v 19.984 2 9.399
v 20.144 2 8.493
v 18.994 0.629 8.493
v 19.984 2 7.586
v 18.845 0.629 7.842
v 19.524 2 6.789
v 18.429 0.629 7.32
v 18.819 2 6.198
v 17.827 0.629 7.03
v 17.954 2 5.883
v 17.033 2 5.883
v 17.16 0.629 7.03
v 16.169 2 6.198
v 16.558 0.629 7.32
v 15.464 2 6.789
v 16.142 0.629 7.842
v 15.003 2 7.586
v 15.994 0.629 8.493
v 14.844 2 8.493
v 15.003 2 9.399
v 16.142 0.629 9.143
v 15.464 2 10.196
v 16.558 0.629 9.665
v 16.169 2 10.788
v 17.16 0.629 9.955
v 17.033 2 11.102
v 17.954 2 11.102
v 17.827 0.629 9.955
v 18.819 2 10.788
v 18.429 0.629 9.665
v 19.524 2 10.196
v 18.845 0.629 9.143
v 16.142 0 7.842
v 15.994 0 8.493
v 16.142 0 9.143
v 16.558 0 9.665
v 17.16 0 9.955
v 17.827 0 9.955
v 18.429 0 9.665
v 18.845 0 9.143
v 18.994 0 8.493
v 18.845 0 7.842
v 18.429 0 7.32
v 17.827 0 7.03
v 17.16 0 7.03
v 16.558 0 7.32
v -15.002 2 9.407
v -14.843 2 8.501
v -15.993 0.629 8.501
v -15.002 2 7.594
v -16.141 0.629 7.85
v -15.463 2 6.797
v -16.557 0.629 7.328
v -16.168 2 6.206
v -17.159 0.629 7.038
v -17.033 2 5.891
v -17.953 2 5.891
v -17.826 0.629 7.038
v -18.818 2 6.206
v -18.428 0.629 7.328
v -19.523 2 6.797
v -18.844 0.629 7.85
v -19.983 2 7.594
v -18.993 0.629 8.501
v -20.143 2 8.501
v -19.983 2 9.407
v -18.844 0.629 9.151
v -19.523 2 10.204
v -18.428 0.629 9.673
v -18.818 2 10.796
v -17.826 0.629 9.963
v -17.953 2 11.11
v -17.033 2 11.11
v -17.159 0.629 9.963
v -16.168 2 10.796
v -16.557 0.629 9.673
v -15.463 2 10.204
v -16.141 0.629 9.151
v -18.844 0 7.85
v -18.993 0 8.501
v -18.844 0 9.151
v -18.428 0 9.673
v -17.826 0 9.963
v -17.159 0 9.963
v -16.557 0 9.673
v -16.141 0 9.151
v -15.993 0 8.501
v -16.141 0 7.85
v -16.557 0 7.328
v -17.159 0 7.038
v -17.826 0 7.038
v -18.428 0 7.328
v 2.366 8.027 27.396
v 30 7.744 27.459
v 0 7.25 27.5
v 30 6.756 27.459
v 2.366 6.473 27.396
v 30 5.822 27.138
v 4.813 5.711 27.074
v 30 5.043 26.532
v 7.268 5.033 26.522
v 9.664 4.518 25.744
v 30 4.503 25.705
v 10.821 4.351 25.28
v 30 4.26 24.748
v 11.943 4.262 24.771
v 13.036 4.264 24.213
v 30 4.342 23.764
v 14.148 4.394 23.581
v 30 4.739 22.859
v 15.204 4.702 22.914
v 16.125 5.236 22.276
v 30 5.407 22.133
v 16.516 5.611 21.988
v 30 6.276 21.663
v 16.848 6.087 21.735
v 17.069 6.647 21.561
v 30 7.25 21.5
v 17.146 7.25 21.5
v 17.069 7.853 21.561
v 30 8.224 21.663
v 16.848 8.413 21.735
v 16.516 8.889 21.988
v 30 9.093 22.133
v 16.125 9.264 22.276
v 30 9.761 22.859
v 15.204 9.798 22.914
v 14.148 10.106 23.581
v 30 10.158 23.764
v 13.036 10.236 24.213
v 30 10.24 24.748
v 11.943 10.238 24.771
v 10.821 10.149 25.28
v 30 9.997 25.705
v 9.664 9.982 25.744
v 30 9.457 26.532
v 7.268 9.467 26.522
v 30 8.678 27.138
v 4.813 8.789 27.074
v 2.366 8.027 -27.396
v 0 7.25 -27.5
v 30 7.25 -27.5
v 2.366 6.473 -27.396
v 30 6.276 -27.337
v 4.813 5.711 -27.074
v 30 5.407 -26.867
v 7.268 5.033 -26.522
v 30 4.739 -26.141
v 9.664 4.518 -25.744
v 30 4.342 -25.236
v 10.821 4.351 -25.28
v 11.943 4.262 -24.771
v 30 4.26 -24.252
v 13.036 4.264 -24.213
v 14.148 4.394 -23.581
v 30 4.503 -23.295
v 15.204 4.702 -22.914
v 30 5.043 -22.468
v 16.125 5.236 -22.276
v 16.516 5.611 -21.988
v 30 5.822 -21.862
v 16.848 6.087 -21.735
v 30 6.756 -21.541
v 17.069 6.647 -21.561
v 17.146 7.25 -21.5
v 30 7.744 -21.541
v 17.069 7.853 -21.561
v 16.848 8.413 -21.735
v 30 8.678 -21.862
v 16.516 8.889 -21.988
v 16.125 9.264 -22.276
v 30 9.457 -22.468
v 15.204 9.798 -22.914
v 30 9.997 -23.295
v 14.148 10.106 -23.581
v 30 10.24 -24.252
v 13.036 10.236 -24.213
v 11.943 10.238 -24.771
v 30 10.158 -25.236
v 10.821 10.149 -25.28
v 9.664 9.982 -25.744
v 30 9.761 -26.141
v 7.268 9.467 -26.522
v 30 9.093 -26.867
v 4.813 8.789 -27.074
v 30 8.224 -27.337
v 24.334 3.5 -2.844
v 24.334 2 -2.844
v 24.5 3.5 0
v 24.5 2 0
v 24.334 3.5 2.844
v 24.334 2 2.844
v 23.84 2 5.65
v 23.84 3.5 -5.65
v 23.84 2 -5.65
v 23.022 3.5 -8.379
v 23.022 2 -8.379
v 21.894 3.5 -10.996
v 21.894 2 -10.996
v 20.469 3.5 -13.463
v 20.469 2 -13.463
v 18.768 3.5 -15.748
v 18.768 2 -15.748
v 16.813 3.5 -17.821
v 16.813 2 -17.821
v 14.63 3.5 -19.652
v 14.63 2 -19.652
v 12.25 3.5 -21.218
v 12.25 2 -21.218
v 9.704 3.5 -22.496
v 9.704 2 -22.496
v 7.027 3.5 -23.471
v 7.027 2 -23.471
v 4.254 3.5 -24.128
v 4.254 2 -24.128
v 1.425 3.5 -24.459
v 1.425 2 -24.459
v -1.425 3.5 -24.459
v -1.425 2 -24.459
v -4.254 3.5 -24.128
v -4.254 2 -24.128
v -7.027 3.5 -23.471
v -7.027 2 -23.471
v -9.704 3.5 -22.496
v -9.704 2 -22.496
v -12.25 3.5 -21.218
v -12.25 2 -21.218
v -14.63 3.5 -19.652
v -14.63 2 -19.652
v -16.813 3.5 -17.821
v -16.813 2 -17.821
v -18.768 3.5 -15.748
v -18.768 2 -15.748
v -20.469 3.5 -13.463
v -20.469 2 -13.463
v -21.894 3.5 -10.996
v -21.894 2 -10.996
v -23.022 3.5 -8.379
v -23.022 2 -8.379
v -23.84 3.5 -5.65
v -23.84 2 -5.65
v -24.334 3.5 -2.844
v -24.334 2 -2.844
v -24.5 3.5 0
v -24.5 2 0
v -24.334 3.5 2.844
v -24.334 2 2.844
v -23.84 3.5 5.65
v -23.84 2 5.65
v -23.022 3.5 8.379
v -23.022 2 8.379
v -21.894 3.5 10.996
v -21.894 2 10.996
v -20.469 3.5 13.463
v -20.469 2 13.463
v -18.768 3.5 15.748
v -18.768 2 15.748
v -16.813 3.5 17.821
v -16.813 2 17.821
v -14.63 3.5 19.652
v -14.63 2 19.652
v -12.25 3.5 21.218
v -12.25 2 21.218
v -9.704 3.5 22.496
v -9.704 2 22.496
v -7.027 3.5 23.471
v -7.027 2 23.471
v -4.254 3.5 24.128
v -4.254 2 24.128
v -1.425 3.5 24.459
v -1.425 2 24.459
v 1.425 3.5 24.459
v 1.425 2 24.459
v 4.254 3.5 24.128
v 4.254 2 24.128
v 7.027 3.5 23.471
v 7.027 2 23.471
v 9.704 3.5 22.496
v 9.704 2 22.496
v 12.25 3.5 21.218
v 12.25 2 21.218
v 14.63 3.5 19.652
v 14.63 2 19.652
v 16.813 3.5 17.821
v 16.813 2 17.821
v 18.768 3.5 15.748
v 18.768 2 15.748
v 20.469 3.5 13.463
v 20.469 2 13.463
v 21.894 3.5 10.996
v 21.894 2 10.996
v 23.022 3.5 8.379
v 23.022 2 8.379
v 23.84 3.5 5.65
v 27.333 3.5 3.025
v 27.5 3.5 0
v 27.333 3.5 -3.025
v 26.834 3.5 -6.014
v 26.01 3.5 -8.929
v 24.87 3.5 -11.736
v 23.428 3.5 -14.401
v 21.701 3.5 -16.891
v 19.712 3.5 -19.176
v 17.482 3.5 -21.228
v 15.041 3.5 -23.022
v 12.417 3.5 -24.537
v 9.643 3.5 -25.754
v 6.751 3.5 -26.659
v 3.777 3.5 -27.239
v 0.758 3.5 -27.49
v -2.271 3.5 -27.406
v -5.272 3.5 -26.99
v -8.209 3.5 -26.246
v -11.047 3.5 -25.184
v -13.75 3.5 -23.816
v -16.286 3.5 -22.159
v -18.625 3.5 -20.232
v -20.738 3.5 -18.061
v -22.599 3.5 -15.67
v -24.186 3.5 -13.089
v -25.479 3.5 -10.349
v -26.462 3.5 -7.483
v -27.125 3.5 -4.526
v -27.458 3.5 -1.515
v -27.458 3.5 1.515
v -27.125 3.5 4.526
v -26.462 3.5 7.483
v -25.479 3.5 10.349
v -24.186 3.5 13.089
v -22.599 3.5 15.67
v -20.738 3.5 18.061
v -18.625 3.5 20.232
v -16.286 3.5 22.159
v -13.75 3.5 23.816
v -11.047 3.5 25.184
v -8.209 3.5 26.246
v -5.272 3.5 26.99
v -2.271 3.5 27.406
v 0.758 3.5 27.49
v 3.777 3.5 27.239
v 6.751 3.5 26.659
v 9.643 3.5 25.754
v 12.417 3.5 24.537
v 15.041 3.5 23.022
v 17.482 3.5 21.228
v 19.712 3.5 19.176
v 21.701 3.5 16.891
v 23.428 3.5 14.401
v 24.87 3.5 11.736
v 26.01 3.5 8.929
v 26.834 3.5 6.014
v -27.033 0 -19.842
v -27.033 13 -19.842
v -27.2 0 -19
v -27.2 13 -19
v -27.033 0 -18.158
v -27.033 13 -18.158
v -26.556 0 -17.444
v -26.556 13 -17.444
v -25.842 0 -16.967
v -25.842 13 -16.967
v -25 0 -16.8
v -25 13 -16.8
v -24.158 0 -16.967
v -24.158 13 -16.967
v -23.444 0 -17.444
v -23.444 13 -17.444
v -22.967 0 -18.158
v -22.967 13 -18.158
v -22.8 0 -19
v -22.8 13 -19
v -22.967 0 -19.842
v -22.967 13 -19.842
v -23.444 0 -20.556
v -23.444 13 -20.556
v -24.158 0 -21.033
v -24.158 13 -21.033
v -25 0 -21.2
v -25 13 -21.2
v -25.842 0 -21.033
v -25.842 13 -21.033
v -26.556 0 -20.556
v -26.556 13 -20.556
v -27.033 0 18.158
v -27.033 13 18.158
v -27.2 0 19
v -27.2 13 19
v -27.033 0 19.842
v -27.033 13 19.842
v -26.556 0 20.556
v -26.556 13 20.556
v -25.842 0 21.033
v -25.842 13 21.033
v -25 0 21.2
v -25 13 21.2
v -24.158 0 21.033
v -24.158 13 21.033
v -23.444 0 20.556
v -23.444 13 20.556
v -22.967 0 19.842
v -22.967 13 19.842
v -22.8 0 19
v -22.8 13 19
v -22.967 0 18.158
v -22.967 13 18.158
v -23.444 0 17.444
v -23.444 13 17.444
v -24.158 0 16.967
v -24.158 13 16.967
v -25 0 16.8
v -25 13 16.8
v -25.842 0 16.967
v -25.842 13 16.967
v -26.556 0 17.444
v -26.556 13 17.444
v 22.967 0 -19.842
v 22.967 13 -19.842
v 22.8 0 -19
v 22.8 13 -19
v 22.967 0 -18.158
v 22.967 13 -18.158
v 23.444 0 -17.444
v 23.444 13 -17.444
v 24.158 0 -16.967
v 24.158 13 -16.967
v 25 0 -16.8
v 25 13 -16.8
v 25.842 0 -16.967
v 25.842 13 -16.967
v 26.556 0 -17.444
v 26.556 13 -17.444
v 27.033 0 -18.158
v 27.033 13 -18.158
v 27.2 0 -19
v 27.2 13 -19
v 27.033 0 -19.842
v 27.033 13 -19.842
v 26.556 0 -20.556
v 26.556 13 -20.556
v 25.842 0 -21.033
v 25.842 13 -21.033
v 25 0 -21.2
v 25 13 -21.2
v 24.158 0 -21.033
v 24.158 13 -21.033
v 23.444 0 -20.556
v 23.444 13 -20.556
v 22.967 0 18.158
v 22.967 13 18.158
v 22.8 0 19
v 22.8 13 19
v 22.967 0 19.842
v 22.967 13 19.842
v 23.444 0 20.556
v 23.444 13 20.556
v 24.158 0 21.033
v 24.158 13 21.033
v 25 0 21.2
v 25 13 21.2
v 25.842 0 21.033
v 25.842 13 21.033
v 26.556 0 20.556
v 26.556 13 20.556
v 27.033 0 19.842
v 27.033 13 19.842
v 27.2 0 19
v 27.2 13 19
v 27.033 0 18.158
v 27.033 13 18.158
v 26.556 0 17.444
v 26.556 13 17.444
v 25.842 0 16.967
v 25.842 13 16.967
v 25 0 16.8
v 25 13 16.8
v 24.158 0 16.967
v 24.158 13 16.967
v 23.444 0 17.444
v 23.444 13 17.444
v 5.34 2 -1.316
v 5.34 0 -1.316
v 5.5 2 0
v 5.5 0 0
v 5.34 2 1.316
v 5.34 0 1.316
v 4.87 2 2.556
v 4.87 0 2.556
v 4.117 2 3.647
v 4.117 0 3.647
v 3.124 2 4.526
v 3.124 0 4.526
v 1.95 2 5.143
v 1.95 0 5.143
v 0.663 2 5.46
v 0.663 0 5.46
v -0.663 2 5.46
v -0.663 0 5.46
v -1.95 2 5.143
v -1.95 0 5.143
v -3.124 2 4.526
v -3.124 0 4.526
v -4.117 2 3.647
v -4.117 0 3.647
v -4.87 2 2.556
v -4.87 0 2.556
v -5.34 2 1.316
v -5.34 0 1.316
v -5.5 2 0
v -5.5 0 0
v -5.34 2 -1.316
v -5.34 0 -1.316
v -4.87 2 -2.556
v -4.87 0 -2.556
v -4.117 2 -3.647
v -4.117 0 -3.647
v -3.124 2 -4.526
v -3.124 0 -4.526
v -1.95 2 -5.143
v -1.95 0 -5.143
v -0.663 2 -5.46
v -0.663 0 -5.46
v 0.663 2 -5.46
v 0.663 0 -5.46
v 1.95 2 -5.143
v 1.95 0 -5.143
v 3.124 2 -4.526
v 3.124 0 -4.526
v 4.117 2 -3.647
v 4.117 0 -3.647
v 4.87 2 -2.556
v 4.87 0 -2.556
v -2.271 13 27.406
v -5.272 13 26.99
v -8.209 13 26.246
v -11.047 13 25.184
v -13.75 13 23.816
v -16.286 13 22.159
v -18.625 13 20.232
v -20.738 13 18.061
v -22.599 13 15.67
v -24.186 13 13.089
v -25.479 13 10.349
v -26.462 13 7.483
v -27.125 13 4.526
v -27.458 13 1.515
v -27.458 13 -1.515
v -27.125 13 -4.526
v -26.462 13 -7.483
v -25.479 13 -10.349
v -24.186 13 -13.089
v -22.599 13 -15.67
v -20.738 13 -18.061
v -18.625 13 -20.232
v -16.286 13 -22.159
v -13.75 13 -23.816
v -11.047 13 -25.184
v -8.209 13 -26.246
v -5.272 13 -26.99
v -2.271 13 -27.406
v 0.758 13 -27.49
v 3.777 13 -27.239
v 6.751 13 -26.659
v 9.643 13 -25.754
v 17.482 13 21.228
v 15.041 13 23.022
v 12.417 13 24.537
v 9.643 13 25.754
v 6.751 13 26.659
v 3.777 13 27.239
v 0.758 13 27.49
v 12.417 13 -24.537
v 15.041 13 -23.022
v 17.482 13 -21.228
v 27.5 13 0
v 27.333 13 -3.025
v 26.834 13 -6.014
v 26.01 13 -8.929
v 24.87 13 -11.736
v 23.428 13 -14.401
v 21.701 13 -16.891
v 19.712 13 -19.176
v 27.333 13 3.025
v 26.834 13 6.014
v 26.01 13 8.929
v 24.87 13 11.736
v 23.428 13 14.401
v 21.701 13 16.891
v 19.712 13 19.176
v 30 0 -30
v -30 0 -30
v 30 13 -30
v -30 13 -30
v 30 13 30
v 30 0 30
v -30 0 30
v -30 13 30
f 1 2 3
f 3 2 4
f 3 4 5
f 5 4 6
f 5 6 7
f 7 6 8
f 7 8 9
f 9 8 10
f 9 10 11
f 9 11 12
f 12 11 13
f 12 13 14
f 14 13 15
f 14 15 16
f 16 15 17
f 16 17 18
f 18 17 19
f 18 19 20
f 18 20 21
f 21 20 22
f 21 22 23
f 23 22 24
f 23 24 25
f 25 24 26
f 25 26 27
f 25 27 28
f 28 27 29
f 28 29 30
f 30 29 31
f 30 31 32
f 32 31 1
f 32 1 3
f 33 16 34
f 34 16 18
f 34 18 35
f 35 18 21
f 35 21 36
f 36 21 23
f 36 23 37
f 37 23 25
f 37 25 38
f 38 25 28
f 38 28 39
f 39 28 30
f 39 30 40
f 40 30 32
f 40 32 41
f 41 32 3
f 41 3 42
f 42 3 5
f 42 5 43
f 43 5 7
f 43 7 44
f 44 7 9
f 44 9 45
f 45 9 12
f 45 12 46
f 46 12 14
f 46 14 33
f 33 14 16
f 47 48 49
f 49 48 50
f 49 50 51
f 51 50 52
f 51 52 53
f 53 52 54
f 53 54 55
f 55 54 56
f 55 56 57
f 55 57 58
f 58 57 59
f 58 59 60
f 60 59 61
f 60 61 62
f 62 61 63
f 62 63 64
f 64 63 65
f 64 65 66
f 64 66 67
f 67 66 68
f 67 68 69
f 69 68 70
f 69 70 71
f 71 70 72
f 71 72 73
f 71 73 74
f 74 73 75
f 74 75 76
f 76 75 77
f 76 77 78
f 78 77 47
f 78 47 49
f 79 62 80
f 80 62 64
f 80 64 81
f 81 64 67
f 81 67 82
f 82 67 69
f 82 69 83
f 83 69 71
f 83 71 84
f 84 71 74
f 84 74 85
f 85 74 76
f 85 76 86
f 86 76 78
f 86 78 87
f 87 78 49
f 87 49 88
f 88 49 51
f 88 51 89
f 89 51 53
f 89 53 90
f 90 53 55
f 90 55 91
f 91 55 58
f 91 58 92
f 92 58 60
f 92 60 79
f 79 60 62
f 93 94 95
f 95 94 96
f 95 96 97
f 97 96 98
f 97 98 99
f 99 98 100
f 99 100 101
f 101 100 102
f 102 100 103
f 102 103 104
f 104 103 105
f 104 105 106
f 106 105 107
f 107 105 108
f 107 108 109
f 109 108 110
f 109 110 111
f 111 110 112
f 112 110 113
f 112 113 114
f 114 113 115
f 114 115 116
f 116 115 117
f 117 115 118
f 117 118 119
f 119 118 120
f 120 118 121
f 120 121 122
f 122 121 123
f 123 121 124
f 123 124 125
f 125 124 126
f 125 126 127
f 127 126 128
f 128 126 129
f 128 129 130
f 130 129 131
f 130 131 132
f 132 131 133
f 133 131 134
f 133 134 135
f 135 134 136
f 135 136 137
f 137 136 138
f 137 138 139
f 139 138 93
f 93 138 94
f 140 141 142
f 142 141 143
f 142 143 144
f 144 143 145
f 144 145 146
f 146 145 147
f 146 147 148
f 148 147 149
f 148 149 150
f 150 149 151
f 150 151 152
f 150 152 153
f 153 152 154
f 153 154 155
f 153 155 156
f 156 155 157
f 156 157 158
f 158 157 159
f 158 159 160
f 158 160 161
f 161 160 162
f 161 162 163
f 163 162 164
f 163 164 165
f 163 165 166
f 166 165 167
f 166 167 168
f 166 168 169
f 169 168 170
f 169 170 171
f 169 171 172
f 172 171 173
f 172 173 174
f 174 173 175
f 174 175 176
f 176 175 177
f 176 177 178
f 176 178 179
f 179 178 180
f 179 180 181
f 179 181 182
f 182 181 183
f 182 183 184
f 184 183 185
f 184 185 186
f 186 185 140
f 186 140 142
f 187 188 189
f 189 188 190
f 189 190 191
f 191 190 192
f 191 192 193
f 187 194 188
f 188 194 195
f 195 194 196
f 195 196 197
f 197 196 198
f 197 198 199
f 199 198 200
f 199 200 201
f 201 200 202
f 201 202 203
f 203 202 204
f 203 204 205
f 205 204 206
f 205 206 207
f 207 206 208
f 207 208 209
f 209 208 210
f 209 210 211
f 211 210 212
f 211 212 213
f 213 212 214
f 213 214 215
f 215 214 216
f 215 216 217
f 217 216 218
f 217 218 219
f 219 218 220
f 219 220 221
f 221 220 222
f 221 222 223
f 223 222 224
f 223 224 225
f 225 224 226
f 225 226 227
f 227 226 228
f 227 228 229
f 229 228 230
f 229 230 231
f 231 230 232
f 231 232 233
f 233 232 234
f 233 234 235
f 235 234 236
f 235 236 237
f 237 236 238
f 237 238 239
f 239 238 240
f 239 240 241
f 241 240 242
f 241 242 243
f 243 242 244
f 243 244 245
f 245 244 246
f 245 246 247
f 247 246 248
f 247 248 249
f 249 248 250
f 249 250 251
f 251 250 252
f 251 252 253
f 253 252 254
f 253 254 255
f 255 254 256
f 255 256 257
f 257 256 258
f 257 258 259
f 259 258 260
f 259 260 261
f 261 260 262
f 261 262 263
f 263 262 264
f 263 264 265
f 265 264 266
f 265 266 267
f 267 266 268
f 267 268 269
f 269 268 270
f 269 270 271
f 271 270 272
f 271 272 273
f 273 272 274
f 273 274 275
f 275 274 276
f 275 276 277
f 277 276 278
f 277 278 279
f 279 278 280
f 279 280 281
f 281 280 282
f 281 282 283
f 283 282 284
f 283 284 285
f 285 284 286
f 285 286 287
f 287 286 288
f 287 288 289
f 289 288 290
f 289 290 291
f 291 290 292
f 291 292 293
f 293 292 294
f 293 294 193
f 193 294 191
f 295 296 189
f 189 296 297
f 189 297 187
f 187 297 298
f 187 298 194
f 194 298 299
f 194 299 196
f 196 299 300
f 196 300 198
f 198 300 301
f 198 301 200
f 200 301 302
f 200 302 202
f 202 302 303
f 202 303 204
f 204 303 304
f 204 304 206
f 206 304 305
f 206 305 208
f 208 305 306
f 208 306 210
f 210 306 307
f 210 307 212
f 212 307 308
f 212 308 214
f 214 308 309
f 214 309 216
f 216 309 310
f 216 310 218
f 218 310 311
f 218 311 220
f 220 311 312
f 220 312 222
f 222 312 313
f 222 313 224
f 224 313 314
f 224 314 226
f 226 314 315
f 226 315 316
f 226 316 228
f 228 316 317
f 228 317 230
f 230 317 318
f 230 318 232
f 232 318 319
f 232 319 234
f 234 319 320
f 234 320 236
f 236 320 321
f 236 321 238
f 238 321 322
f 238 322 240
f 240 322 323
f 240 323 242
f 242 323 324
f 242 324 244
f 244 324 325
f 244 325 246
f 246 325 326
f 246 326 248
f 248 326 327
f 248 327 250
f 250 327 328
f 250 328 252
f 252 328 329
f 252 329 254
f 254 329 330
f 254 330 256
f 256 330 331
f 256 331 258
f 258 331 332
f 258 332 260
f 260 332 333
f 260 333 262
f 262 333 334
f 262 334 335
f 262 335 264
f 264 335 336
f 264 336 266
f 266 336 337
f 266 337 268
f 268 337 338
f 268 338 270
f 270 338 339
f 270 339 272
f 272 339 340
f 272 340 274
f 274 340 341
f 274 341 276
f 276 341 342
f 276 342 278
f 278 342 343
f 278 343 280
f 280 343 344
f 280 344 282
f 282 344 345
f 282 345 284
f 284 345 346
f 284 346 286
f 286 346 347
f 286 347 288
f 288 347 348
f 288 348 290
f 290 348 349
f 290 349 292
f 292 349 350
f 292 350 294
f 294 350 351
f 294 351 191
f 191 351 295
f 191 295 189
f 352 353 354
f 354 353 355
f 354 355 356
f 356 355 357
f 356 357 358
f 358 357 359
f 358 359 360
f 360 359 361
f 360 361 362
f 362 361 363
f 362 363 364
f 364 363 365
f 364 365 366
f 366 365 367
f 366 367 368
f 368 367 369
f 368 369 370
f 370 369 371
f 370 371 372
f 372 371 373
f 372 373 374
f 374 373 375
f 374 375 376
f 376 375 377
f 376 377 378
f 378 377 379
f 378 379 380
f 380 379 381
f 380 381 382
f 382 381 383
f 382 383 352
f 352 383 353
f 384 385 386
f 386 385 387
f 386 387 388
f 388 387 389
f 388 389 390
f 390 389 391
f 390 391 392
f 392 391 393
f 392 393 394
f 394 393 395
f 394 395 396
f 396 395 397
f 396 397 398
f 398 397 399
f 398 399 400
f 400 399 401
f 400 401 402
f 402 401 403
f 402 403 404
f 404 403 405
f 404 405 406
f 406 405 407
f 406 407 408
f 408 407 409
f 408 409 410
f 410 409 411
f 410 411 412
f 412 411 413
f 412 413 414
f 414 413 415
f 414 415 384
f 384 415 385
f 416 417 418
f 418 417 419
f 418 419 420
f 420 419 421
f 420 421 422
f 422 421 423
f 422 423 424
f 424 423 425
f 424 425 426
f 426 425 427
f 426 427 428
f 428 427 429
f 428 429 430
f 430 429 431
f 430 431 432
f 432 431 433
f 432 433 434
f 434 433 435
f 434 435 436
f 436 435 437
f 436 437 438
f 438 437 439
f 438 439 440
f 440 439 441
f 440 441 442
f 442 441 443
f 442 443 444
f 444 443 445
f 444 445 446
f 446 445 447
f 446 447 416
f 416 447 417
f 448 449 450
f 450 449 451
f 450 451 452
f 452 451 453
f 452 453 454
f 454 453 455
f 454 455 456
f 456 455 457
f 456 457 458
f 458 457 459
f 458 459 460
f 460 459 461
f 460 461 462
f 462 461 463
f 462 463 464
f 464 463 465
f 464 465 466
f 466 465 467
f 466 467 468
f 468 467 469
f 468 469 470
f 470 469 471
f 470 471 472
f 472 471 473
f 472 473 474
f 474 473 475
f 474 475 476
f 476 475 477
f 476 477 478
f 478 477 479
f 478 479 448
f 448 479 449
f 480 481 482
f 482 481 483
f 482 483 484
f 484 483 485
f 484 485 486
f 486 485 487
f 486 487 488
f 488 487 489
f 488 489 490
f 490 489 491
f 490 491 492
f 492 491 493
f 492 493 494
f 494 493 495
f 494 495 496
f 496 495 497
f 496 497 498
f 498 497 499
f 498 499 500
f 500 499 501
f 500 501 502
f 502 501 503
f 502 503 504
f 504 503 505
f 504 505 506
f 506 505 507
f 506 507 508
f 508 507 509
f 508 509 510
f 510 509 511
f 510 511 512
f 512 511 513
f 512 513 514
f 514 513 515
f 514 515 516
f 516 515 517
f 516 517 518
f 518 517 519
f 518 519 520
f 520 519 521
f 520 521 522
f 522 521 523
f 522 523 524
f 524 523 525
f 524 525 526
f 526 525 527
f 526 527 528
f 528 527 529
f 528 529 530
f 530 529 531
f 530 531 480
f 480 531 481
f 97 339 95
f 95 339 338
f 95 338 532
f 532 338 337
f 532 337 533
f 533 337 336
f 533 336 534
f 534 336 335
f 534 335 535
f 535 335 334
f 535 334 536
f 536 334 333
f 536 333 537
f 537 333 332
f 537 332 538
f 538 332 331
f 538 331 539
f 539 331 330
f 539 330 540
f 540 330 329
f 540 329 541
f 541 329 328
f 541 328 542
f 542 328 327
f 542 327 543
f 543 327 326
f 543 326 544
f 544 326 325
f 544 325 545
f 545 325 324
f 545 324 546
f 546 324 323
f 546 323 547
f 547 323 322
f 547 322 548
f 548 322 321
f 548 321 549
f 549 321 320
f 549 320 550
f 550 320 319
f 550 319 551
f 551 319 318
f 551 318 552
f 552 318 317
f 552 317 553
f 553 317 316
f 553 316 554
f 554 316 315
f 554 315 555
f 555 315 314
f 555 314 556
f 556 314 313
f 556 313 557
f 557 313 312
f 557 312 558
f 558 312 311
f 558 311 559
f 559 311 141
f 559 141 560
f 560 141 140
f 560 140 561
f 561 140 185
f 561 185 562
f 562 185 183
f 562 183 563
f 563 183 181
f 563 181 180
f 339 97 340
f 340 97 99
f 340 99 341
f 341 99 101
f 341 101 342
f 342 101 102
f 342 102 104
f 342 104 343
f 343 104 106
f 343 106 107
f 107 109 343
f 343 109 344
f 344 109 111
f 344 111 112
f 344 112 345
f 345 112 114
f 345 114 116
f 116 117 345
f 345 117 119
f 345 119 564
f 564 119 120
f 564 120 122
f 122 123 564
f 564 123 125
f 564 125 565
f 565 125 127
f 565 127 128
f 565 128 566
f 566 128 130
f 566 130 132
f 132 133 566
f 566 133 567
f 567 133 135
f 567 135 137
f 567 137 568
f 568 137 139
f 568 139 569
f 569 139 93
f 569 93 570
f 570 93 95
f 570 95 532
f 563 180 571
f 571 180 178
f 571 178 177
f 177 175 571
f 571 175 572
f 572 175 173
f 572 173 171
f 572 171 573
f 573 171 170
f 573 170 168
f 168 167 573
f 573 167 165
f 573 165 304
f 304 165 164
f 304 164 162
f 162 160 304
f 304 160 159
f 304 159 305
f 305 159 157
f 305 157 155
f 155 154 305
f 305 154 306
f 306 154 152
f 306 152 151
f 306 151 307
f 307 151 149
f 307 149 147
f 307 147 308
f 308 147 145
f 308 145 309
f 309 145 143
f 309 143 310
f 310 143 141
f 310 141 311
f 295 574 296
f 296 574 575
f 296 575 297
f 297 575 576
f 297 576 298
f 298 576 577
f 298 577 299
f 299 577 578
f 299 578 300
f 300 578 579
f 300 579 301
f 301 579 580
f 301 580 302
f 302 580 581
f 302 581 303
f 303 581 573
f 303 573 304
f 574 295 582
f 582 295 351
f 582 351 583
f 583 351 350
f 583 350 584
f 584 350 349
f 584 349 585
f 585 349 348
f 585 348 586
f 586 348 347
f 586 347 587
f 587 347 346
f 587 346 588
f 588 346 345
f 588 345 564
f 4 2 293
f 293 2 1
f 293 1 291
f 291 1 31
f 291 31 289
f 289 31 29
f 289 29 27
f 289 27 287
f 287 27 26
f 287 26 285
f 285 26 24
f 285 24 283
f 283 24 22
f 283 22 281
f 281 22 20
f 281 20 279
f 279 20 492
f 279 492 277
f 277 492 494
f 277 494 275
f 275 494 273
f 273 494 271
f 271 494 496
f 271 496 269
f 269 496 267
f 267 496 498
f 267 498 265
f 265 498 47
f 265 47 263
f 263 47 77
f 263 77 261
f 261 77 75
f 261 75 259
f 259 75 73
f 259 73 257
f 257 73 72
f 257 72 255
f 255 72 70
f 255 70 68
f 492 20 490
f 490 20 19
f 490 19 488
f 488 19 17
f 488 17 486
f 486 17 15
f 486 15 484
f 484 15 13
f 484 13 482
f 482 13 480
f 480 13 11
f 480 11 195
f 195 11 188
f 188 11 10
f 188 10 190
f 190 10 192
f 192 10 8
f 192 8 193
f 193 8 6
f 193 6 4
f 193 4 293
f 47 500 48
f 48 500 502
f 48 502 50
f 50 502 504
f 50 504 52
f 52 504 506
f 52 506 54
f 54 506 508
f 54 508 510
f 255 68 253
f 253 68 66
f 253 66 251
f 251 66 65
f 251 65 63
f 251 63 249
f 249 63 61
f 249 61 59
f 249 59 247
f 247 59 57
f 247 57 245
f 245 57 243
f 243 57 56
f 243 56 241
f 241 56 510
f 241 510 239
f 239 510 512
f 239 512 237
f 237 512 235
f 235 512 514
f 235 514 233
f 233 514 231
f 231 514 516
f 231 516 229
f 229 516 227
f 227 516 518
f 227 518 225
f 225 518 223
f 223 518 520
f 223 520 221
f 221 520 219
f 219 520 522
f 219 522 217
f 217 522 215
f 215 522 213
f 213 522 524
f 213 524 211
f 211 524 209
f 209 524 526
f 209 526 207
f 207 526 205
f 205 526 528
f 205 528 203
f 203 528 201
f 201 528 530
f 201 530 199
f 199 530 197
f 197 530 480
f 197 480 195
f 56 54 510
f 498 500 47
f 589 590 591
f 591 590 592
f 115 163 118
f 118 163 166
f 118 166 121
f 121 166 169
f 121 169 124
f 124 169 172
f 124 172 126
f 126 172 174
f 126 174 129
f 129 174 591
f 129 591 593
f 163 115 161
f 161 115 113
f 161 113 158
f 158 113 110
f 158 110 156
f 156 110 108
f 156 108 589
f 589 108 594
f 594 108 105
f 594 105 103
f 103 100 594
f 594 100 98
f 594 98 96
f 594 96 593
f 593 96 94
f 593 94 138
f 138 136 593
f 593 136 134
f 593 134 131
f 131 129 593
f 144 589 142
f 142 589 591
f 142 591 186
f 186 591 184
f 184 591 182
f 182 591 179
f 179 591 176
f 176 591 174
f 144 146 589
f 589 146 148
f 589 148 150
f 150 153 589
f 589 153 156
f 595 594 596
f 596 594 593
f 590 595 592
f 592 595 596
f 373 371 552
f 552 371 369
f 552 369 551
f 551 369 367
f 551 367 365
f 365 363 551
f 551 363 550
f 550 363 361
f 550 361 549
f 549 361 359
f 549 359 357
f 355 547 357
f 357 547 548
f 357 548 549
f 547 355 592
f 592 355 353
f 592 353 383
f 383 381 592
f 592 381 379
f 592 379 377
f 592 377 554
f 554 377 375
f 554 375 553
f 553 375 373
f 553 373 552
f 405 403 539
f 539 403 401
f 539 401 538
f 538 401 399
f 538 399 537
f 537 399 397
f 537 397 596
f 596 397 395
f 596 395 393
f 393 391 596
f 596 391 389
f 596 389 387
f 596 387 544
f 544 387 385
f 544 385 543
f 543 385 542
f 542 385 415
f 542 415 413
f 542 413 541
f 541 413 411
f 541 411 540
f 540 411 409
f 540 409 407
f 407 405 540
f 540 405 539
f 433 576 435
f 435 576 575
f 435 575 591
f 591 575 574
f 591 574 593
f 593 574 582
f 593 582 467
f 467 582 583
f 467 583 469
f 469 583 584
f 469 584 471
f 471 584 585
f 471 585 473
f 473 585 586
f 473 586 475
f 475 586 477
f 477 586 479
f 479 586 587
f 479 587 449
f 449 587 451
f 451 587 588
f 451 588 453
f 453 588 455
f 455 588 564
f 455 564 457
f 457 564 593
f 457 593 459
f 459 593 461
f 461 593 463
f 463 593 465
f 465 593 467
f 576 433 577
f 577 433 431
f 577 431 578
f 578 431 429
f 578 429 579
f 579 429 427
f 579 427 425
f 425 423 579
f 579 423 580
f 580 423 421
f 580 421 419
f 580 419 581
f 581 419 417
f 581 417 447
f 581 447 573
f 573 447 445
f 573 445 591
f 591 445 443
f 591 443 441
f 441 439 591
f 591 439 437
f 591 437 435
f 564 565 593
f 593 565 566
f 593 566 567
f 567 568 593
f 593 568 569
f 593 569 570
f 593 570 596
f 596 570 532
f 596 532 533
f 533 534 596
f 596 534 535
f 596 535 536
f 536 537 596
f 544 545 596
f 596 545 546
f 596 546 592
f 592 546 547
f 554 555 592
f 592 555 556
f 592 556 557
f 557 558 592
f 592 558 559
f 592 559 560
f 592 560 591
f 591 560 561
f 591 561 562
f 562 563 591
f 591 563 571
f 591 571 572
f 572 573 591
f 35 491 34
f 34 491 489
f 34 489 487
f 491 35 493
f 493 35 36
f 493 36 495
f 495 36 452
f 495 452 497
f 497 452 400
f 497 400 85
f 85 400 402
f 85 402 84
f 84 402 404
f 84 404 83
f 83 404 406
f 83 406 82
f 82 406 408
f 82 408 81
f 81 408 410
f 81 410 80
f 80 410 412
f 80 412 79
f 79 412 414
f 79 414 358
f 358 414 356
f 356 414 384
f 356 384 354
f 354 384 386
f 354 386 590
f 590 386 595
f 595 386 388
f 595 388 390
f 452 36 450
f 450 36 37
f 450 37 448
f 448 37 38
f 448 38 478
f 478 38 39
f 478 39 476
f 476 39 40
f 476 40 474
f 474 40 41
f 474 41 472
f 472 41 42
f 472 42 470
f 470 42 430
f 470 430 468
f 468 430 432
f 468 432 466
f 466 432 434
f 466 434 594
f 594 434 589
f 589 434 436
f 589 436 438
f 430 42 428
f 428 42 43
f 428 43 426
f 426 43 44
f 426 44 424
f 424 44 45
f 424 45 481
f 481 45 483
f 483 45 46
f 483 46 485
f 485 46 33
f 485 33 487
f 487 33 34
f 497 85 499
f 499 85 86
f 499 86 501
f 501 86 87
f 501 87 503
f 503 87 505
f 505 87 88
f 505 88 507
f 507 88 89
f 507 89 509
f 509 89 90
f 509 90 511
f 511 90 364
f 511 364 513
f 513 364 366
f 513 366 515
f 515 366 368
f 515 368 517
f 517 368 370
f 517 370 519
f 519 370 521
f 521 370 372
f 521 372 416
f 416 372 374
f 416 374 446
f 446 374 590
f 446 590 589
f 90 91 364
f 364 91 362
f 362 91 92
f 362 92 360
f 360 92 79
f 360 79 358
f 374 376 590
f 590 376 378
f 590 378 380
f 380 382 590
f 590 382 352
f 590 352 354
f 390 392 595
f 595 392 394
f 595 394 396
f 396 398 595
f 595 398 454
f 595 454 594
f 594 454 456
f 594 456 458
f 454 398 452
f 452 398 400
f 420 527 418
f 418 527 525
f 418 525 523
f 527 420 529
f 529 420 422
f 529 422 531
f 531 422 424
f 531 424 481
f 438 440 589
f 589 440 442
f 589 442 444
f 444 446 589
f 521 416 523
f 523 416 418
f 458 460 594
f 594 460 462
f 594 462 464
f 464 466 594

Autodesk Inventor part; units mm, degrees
ref_plane "YZ Plane" through (0, 0, 0) normal (1, 0, 0) x (0, 1, 0)
ref_plane "XZ Plane" through (0, 0, 0) normal (0, 1, 0) x (-1, 0, 0)
ref_plane "XY Plane" through (0, 0, 0) normal (0, 0, 1) x (1, 0, 0)
sketch "Boceto1" plane through (0, 0, 0) normal (0, 1, 0) x (-1, 0, 0)
  line L0 (-30, -30) -> (30, -30)
  line L1 (30, -30) -> (30, 30)
  line L2 (30, 30) -> (-30, 30)
  line L3 (-30, 30) -> (-30, -30)
  line L4 (-30, -30) -> (30, 30) construction
  line L5 (30, -30) -> (-30, 30) construction
  point P0 (0, 0)
  dimension "d0" = 60
  dimension "d1" = 60
extrude "Extrusión1" add sketch "Boceto1" along normal blind 13
sketch "Boceto2" plane through (0, 13, 0) normal (0, 1, 0) x (1, 0, 0)
  circle A0 centre (0, 0) radius 27.5
  dimension "d4" = 55
extrude "Extrusión2" cut sketch "Boceto2" against normal blind 11
sketch "Boceto3" plane through (0, 2, 0) normal (0, 1, 0) x (1, 0, 0)
  circle A0 centre (0, 0) radius 27.5 projected
hole "Agujero1" at (0, 2, 0) direction (0, -1, 0) diameter 11 depth 2
sketch "Boceto4" plane through (0, 13, 0) normal (0, 1, 0) x (1, 0, 0)
  line L0 (-30, -30) -> (30, -30) projected
  line L1 (30, -30) -> (30, 30) projected
  point P0 (0, 0)
  point P1 (25, -19)
  dimension "d14" = 11
  dimension "d15" = 5
hole "Agujero2" at (25, 13, 19) direction (0, -1, 0) diameter 4.4 end through all
pattern_linear "Patrón rectangular1" count 2 spacing 38 along (0, 0, -1) count 2 spacing 50 along (-1, 0, 0) of "Agujero2"
sketch "Boceto5" plane through (0, 2, 0) normal (0, 1, 0) x (1, 0, 0)
  circle A0 centre (0, 0) radius 24.5
  circle A1 centre (0, 0) radius 27.5
  dimension "d29" = 49
  dimension "d30" = 55
extrude "Extrusión3" add sketch "Boceto5" along normal blind 1.5
sketch "Boceto6" plane through (30, 0, 30) normal (1, 0, 0) x (0, 0, -1)
  line L0 (2.5, 13) -> (57.5, 13) projected
  line L1 (2.5, 13) -> (2.5, 3.5) projected
  line L2 (2.5, 3.5) -> (57.5, 3.5) projected
  line L3 (57.5, 13) -> (57.5, 3.5) projected
  line L4 (2.5, 13) -> (2.5, 11)
  line L5 (2.5, 11) -> (57.5, 11)
  line L6 (5.5, 3.5) -> (54.5, 3.5) projected
  line L7 (5.5, 3.5) -> (5.5, 11)
  circle A0 centre (5.5, 7.25) radius 3
  circle A1 centre (54.5, 7.25) radius 3
  point P0 (30, 0)
  point P1 (5.5, 7.25)
  dimension "d49" = 2
  dimension "d50" = 6
  dimension "d51" = 6
hole "Agujero3" at (30, 7.25, 24.5) at (30, 7.25, -24.5) direction (-1, 0, 0) diameter 6 depth 30
sketch "Boceto7" plane through (0, 2, 0) normal (0, 1, 0) x (1, 0, 0)
  circle A0 centre (-17.4927, -8.5006) radius 1.9922 projected
  circle A1 centre (17.4936, -8.4925) radius 2.0099 projected
  point P0 (0, 0)
hole "Agujero4" at (17.4936, 2, 8.4925) at (-17.4927, 2, 8.5006) direction (0, -1, 0) diameter 3 end through all countersink diameter 5.3 countersink angle 80
properties part number "Base"
